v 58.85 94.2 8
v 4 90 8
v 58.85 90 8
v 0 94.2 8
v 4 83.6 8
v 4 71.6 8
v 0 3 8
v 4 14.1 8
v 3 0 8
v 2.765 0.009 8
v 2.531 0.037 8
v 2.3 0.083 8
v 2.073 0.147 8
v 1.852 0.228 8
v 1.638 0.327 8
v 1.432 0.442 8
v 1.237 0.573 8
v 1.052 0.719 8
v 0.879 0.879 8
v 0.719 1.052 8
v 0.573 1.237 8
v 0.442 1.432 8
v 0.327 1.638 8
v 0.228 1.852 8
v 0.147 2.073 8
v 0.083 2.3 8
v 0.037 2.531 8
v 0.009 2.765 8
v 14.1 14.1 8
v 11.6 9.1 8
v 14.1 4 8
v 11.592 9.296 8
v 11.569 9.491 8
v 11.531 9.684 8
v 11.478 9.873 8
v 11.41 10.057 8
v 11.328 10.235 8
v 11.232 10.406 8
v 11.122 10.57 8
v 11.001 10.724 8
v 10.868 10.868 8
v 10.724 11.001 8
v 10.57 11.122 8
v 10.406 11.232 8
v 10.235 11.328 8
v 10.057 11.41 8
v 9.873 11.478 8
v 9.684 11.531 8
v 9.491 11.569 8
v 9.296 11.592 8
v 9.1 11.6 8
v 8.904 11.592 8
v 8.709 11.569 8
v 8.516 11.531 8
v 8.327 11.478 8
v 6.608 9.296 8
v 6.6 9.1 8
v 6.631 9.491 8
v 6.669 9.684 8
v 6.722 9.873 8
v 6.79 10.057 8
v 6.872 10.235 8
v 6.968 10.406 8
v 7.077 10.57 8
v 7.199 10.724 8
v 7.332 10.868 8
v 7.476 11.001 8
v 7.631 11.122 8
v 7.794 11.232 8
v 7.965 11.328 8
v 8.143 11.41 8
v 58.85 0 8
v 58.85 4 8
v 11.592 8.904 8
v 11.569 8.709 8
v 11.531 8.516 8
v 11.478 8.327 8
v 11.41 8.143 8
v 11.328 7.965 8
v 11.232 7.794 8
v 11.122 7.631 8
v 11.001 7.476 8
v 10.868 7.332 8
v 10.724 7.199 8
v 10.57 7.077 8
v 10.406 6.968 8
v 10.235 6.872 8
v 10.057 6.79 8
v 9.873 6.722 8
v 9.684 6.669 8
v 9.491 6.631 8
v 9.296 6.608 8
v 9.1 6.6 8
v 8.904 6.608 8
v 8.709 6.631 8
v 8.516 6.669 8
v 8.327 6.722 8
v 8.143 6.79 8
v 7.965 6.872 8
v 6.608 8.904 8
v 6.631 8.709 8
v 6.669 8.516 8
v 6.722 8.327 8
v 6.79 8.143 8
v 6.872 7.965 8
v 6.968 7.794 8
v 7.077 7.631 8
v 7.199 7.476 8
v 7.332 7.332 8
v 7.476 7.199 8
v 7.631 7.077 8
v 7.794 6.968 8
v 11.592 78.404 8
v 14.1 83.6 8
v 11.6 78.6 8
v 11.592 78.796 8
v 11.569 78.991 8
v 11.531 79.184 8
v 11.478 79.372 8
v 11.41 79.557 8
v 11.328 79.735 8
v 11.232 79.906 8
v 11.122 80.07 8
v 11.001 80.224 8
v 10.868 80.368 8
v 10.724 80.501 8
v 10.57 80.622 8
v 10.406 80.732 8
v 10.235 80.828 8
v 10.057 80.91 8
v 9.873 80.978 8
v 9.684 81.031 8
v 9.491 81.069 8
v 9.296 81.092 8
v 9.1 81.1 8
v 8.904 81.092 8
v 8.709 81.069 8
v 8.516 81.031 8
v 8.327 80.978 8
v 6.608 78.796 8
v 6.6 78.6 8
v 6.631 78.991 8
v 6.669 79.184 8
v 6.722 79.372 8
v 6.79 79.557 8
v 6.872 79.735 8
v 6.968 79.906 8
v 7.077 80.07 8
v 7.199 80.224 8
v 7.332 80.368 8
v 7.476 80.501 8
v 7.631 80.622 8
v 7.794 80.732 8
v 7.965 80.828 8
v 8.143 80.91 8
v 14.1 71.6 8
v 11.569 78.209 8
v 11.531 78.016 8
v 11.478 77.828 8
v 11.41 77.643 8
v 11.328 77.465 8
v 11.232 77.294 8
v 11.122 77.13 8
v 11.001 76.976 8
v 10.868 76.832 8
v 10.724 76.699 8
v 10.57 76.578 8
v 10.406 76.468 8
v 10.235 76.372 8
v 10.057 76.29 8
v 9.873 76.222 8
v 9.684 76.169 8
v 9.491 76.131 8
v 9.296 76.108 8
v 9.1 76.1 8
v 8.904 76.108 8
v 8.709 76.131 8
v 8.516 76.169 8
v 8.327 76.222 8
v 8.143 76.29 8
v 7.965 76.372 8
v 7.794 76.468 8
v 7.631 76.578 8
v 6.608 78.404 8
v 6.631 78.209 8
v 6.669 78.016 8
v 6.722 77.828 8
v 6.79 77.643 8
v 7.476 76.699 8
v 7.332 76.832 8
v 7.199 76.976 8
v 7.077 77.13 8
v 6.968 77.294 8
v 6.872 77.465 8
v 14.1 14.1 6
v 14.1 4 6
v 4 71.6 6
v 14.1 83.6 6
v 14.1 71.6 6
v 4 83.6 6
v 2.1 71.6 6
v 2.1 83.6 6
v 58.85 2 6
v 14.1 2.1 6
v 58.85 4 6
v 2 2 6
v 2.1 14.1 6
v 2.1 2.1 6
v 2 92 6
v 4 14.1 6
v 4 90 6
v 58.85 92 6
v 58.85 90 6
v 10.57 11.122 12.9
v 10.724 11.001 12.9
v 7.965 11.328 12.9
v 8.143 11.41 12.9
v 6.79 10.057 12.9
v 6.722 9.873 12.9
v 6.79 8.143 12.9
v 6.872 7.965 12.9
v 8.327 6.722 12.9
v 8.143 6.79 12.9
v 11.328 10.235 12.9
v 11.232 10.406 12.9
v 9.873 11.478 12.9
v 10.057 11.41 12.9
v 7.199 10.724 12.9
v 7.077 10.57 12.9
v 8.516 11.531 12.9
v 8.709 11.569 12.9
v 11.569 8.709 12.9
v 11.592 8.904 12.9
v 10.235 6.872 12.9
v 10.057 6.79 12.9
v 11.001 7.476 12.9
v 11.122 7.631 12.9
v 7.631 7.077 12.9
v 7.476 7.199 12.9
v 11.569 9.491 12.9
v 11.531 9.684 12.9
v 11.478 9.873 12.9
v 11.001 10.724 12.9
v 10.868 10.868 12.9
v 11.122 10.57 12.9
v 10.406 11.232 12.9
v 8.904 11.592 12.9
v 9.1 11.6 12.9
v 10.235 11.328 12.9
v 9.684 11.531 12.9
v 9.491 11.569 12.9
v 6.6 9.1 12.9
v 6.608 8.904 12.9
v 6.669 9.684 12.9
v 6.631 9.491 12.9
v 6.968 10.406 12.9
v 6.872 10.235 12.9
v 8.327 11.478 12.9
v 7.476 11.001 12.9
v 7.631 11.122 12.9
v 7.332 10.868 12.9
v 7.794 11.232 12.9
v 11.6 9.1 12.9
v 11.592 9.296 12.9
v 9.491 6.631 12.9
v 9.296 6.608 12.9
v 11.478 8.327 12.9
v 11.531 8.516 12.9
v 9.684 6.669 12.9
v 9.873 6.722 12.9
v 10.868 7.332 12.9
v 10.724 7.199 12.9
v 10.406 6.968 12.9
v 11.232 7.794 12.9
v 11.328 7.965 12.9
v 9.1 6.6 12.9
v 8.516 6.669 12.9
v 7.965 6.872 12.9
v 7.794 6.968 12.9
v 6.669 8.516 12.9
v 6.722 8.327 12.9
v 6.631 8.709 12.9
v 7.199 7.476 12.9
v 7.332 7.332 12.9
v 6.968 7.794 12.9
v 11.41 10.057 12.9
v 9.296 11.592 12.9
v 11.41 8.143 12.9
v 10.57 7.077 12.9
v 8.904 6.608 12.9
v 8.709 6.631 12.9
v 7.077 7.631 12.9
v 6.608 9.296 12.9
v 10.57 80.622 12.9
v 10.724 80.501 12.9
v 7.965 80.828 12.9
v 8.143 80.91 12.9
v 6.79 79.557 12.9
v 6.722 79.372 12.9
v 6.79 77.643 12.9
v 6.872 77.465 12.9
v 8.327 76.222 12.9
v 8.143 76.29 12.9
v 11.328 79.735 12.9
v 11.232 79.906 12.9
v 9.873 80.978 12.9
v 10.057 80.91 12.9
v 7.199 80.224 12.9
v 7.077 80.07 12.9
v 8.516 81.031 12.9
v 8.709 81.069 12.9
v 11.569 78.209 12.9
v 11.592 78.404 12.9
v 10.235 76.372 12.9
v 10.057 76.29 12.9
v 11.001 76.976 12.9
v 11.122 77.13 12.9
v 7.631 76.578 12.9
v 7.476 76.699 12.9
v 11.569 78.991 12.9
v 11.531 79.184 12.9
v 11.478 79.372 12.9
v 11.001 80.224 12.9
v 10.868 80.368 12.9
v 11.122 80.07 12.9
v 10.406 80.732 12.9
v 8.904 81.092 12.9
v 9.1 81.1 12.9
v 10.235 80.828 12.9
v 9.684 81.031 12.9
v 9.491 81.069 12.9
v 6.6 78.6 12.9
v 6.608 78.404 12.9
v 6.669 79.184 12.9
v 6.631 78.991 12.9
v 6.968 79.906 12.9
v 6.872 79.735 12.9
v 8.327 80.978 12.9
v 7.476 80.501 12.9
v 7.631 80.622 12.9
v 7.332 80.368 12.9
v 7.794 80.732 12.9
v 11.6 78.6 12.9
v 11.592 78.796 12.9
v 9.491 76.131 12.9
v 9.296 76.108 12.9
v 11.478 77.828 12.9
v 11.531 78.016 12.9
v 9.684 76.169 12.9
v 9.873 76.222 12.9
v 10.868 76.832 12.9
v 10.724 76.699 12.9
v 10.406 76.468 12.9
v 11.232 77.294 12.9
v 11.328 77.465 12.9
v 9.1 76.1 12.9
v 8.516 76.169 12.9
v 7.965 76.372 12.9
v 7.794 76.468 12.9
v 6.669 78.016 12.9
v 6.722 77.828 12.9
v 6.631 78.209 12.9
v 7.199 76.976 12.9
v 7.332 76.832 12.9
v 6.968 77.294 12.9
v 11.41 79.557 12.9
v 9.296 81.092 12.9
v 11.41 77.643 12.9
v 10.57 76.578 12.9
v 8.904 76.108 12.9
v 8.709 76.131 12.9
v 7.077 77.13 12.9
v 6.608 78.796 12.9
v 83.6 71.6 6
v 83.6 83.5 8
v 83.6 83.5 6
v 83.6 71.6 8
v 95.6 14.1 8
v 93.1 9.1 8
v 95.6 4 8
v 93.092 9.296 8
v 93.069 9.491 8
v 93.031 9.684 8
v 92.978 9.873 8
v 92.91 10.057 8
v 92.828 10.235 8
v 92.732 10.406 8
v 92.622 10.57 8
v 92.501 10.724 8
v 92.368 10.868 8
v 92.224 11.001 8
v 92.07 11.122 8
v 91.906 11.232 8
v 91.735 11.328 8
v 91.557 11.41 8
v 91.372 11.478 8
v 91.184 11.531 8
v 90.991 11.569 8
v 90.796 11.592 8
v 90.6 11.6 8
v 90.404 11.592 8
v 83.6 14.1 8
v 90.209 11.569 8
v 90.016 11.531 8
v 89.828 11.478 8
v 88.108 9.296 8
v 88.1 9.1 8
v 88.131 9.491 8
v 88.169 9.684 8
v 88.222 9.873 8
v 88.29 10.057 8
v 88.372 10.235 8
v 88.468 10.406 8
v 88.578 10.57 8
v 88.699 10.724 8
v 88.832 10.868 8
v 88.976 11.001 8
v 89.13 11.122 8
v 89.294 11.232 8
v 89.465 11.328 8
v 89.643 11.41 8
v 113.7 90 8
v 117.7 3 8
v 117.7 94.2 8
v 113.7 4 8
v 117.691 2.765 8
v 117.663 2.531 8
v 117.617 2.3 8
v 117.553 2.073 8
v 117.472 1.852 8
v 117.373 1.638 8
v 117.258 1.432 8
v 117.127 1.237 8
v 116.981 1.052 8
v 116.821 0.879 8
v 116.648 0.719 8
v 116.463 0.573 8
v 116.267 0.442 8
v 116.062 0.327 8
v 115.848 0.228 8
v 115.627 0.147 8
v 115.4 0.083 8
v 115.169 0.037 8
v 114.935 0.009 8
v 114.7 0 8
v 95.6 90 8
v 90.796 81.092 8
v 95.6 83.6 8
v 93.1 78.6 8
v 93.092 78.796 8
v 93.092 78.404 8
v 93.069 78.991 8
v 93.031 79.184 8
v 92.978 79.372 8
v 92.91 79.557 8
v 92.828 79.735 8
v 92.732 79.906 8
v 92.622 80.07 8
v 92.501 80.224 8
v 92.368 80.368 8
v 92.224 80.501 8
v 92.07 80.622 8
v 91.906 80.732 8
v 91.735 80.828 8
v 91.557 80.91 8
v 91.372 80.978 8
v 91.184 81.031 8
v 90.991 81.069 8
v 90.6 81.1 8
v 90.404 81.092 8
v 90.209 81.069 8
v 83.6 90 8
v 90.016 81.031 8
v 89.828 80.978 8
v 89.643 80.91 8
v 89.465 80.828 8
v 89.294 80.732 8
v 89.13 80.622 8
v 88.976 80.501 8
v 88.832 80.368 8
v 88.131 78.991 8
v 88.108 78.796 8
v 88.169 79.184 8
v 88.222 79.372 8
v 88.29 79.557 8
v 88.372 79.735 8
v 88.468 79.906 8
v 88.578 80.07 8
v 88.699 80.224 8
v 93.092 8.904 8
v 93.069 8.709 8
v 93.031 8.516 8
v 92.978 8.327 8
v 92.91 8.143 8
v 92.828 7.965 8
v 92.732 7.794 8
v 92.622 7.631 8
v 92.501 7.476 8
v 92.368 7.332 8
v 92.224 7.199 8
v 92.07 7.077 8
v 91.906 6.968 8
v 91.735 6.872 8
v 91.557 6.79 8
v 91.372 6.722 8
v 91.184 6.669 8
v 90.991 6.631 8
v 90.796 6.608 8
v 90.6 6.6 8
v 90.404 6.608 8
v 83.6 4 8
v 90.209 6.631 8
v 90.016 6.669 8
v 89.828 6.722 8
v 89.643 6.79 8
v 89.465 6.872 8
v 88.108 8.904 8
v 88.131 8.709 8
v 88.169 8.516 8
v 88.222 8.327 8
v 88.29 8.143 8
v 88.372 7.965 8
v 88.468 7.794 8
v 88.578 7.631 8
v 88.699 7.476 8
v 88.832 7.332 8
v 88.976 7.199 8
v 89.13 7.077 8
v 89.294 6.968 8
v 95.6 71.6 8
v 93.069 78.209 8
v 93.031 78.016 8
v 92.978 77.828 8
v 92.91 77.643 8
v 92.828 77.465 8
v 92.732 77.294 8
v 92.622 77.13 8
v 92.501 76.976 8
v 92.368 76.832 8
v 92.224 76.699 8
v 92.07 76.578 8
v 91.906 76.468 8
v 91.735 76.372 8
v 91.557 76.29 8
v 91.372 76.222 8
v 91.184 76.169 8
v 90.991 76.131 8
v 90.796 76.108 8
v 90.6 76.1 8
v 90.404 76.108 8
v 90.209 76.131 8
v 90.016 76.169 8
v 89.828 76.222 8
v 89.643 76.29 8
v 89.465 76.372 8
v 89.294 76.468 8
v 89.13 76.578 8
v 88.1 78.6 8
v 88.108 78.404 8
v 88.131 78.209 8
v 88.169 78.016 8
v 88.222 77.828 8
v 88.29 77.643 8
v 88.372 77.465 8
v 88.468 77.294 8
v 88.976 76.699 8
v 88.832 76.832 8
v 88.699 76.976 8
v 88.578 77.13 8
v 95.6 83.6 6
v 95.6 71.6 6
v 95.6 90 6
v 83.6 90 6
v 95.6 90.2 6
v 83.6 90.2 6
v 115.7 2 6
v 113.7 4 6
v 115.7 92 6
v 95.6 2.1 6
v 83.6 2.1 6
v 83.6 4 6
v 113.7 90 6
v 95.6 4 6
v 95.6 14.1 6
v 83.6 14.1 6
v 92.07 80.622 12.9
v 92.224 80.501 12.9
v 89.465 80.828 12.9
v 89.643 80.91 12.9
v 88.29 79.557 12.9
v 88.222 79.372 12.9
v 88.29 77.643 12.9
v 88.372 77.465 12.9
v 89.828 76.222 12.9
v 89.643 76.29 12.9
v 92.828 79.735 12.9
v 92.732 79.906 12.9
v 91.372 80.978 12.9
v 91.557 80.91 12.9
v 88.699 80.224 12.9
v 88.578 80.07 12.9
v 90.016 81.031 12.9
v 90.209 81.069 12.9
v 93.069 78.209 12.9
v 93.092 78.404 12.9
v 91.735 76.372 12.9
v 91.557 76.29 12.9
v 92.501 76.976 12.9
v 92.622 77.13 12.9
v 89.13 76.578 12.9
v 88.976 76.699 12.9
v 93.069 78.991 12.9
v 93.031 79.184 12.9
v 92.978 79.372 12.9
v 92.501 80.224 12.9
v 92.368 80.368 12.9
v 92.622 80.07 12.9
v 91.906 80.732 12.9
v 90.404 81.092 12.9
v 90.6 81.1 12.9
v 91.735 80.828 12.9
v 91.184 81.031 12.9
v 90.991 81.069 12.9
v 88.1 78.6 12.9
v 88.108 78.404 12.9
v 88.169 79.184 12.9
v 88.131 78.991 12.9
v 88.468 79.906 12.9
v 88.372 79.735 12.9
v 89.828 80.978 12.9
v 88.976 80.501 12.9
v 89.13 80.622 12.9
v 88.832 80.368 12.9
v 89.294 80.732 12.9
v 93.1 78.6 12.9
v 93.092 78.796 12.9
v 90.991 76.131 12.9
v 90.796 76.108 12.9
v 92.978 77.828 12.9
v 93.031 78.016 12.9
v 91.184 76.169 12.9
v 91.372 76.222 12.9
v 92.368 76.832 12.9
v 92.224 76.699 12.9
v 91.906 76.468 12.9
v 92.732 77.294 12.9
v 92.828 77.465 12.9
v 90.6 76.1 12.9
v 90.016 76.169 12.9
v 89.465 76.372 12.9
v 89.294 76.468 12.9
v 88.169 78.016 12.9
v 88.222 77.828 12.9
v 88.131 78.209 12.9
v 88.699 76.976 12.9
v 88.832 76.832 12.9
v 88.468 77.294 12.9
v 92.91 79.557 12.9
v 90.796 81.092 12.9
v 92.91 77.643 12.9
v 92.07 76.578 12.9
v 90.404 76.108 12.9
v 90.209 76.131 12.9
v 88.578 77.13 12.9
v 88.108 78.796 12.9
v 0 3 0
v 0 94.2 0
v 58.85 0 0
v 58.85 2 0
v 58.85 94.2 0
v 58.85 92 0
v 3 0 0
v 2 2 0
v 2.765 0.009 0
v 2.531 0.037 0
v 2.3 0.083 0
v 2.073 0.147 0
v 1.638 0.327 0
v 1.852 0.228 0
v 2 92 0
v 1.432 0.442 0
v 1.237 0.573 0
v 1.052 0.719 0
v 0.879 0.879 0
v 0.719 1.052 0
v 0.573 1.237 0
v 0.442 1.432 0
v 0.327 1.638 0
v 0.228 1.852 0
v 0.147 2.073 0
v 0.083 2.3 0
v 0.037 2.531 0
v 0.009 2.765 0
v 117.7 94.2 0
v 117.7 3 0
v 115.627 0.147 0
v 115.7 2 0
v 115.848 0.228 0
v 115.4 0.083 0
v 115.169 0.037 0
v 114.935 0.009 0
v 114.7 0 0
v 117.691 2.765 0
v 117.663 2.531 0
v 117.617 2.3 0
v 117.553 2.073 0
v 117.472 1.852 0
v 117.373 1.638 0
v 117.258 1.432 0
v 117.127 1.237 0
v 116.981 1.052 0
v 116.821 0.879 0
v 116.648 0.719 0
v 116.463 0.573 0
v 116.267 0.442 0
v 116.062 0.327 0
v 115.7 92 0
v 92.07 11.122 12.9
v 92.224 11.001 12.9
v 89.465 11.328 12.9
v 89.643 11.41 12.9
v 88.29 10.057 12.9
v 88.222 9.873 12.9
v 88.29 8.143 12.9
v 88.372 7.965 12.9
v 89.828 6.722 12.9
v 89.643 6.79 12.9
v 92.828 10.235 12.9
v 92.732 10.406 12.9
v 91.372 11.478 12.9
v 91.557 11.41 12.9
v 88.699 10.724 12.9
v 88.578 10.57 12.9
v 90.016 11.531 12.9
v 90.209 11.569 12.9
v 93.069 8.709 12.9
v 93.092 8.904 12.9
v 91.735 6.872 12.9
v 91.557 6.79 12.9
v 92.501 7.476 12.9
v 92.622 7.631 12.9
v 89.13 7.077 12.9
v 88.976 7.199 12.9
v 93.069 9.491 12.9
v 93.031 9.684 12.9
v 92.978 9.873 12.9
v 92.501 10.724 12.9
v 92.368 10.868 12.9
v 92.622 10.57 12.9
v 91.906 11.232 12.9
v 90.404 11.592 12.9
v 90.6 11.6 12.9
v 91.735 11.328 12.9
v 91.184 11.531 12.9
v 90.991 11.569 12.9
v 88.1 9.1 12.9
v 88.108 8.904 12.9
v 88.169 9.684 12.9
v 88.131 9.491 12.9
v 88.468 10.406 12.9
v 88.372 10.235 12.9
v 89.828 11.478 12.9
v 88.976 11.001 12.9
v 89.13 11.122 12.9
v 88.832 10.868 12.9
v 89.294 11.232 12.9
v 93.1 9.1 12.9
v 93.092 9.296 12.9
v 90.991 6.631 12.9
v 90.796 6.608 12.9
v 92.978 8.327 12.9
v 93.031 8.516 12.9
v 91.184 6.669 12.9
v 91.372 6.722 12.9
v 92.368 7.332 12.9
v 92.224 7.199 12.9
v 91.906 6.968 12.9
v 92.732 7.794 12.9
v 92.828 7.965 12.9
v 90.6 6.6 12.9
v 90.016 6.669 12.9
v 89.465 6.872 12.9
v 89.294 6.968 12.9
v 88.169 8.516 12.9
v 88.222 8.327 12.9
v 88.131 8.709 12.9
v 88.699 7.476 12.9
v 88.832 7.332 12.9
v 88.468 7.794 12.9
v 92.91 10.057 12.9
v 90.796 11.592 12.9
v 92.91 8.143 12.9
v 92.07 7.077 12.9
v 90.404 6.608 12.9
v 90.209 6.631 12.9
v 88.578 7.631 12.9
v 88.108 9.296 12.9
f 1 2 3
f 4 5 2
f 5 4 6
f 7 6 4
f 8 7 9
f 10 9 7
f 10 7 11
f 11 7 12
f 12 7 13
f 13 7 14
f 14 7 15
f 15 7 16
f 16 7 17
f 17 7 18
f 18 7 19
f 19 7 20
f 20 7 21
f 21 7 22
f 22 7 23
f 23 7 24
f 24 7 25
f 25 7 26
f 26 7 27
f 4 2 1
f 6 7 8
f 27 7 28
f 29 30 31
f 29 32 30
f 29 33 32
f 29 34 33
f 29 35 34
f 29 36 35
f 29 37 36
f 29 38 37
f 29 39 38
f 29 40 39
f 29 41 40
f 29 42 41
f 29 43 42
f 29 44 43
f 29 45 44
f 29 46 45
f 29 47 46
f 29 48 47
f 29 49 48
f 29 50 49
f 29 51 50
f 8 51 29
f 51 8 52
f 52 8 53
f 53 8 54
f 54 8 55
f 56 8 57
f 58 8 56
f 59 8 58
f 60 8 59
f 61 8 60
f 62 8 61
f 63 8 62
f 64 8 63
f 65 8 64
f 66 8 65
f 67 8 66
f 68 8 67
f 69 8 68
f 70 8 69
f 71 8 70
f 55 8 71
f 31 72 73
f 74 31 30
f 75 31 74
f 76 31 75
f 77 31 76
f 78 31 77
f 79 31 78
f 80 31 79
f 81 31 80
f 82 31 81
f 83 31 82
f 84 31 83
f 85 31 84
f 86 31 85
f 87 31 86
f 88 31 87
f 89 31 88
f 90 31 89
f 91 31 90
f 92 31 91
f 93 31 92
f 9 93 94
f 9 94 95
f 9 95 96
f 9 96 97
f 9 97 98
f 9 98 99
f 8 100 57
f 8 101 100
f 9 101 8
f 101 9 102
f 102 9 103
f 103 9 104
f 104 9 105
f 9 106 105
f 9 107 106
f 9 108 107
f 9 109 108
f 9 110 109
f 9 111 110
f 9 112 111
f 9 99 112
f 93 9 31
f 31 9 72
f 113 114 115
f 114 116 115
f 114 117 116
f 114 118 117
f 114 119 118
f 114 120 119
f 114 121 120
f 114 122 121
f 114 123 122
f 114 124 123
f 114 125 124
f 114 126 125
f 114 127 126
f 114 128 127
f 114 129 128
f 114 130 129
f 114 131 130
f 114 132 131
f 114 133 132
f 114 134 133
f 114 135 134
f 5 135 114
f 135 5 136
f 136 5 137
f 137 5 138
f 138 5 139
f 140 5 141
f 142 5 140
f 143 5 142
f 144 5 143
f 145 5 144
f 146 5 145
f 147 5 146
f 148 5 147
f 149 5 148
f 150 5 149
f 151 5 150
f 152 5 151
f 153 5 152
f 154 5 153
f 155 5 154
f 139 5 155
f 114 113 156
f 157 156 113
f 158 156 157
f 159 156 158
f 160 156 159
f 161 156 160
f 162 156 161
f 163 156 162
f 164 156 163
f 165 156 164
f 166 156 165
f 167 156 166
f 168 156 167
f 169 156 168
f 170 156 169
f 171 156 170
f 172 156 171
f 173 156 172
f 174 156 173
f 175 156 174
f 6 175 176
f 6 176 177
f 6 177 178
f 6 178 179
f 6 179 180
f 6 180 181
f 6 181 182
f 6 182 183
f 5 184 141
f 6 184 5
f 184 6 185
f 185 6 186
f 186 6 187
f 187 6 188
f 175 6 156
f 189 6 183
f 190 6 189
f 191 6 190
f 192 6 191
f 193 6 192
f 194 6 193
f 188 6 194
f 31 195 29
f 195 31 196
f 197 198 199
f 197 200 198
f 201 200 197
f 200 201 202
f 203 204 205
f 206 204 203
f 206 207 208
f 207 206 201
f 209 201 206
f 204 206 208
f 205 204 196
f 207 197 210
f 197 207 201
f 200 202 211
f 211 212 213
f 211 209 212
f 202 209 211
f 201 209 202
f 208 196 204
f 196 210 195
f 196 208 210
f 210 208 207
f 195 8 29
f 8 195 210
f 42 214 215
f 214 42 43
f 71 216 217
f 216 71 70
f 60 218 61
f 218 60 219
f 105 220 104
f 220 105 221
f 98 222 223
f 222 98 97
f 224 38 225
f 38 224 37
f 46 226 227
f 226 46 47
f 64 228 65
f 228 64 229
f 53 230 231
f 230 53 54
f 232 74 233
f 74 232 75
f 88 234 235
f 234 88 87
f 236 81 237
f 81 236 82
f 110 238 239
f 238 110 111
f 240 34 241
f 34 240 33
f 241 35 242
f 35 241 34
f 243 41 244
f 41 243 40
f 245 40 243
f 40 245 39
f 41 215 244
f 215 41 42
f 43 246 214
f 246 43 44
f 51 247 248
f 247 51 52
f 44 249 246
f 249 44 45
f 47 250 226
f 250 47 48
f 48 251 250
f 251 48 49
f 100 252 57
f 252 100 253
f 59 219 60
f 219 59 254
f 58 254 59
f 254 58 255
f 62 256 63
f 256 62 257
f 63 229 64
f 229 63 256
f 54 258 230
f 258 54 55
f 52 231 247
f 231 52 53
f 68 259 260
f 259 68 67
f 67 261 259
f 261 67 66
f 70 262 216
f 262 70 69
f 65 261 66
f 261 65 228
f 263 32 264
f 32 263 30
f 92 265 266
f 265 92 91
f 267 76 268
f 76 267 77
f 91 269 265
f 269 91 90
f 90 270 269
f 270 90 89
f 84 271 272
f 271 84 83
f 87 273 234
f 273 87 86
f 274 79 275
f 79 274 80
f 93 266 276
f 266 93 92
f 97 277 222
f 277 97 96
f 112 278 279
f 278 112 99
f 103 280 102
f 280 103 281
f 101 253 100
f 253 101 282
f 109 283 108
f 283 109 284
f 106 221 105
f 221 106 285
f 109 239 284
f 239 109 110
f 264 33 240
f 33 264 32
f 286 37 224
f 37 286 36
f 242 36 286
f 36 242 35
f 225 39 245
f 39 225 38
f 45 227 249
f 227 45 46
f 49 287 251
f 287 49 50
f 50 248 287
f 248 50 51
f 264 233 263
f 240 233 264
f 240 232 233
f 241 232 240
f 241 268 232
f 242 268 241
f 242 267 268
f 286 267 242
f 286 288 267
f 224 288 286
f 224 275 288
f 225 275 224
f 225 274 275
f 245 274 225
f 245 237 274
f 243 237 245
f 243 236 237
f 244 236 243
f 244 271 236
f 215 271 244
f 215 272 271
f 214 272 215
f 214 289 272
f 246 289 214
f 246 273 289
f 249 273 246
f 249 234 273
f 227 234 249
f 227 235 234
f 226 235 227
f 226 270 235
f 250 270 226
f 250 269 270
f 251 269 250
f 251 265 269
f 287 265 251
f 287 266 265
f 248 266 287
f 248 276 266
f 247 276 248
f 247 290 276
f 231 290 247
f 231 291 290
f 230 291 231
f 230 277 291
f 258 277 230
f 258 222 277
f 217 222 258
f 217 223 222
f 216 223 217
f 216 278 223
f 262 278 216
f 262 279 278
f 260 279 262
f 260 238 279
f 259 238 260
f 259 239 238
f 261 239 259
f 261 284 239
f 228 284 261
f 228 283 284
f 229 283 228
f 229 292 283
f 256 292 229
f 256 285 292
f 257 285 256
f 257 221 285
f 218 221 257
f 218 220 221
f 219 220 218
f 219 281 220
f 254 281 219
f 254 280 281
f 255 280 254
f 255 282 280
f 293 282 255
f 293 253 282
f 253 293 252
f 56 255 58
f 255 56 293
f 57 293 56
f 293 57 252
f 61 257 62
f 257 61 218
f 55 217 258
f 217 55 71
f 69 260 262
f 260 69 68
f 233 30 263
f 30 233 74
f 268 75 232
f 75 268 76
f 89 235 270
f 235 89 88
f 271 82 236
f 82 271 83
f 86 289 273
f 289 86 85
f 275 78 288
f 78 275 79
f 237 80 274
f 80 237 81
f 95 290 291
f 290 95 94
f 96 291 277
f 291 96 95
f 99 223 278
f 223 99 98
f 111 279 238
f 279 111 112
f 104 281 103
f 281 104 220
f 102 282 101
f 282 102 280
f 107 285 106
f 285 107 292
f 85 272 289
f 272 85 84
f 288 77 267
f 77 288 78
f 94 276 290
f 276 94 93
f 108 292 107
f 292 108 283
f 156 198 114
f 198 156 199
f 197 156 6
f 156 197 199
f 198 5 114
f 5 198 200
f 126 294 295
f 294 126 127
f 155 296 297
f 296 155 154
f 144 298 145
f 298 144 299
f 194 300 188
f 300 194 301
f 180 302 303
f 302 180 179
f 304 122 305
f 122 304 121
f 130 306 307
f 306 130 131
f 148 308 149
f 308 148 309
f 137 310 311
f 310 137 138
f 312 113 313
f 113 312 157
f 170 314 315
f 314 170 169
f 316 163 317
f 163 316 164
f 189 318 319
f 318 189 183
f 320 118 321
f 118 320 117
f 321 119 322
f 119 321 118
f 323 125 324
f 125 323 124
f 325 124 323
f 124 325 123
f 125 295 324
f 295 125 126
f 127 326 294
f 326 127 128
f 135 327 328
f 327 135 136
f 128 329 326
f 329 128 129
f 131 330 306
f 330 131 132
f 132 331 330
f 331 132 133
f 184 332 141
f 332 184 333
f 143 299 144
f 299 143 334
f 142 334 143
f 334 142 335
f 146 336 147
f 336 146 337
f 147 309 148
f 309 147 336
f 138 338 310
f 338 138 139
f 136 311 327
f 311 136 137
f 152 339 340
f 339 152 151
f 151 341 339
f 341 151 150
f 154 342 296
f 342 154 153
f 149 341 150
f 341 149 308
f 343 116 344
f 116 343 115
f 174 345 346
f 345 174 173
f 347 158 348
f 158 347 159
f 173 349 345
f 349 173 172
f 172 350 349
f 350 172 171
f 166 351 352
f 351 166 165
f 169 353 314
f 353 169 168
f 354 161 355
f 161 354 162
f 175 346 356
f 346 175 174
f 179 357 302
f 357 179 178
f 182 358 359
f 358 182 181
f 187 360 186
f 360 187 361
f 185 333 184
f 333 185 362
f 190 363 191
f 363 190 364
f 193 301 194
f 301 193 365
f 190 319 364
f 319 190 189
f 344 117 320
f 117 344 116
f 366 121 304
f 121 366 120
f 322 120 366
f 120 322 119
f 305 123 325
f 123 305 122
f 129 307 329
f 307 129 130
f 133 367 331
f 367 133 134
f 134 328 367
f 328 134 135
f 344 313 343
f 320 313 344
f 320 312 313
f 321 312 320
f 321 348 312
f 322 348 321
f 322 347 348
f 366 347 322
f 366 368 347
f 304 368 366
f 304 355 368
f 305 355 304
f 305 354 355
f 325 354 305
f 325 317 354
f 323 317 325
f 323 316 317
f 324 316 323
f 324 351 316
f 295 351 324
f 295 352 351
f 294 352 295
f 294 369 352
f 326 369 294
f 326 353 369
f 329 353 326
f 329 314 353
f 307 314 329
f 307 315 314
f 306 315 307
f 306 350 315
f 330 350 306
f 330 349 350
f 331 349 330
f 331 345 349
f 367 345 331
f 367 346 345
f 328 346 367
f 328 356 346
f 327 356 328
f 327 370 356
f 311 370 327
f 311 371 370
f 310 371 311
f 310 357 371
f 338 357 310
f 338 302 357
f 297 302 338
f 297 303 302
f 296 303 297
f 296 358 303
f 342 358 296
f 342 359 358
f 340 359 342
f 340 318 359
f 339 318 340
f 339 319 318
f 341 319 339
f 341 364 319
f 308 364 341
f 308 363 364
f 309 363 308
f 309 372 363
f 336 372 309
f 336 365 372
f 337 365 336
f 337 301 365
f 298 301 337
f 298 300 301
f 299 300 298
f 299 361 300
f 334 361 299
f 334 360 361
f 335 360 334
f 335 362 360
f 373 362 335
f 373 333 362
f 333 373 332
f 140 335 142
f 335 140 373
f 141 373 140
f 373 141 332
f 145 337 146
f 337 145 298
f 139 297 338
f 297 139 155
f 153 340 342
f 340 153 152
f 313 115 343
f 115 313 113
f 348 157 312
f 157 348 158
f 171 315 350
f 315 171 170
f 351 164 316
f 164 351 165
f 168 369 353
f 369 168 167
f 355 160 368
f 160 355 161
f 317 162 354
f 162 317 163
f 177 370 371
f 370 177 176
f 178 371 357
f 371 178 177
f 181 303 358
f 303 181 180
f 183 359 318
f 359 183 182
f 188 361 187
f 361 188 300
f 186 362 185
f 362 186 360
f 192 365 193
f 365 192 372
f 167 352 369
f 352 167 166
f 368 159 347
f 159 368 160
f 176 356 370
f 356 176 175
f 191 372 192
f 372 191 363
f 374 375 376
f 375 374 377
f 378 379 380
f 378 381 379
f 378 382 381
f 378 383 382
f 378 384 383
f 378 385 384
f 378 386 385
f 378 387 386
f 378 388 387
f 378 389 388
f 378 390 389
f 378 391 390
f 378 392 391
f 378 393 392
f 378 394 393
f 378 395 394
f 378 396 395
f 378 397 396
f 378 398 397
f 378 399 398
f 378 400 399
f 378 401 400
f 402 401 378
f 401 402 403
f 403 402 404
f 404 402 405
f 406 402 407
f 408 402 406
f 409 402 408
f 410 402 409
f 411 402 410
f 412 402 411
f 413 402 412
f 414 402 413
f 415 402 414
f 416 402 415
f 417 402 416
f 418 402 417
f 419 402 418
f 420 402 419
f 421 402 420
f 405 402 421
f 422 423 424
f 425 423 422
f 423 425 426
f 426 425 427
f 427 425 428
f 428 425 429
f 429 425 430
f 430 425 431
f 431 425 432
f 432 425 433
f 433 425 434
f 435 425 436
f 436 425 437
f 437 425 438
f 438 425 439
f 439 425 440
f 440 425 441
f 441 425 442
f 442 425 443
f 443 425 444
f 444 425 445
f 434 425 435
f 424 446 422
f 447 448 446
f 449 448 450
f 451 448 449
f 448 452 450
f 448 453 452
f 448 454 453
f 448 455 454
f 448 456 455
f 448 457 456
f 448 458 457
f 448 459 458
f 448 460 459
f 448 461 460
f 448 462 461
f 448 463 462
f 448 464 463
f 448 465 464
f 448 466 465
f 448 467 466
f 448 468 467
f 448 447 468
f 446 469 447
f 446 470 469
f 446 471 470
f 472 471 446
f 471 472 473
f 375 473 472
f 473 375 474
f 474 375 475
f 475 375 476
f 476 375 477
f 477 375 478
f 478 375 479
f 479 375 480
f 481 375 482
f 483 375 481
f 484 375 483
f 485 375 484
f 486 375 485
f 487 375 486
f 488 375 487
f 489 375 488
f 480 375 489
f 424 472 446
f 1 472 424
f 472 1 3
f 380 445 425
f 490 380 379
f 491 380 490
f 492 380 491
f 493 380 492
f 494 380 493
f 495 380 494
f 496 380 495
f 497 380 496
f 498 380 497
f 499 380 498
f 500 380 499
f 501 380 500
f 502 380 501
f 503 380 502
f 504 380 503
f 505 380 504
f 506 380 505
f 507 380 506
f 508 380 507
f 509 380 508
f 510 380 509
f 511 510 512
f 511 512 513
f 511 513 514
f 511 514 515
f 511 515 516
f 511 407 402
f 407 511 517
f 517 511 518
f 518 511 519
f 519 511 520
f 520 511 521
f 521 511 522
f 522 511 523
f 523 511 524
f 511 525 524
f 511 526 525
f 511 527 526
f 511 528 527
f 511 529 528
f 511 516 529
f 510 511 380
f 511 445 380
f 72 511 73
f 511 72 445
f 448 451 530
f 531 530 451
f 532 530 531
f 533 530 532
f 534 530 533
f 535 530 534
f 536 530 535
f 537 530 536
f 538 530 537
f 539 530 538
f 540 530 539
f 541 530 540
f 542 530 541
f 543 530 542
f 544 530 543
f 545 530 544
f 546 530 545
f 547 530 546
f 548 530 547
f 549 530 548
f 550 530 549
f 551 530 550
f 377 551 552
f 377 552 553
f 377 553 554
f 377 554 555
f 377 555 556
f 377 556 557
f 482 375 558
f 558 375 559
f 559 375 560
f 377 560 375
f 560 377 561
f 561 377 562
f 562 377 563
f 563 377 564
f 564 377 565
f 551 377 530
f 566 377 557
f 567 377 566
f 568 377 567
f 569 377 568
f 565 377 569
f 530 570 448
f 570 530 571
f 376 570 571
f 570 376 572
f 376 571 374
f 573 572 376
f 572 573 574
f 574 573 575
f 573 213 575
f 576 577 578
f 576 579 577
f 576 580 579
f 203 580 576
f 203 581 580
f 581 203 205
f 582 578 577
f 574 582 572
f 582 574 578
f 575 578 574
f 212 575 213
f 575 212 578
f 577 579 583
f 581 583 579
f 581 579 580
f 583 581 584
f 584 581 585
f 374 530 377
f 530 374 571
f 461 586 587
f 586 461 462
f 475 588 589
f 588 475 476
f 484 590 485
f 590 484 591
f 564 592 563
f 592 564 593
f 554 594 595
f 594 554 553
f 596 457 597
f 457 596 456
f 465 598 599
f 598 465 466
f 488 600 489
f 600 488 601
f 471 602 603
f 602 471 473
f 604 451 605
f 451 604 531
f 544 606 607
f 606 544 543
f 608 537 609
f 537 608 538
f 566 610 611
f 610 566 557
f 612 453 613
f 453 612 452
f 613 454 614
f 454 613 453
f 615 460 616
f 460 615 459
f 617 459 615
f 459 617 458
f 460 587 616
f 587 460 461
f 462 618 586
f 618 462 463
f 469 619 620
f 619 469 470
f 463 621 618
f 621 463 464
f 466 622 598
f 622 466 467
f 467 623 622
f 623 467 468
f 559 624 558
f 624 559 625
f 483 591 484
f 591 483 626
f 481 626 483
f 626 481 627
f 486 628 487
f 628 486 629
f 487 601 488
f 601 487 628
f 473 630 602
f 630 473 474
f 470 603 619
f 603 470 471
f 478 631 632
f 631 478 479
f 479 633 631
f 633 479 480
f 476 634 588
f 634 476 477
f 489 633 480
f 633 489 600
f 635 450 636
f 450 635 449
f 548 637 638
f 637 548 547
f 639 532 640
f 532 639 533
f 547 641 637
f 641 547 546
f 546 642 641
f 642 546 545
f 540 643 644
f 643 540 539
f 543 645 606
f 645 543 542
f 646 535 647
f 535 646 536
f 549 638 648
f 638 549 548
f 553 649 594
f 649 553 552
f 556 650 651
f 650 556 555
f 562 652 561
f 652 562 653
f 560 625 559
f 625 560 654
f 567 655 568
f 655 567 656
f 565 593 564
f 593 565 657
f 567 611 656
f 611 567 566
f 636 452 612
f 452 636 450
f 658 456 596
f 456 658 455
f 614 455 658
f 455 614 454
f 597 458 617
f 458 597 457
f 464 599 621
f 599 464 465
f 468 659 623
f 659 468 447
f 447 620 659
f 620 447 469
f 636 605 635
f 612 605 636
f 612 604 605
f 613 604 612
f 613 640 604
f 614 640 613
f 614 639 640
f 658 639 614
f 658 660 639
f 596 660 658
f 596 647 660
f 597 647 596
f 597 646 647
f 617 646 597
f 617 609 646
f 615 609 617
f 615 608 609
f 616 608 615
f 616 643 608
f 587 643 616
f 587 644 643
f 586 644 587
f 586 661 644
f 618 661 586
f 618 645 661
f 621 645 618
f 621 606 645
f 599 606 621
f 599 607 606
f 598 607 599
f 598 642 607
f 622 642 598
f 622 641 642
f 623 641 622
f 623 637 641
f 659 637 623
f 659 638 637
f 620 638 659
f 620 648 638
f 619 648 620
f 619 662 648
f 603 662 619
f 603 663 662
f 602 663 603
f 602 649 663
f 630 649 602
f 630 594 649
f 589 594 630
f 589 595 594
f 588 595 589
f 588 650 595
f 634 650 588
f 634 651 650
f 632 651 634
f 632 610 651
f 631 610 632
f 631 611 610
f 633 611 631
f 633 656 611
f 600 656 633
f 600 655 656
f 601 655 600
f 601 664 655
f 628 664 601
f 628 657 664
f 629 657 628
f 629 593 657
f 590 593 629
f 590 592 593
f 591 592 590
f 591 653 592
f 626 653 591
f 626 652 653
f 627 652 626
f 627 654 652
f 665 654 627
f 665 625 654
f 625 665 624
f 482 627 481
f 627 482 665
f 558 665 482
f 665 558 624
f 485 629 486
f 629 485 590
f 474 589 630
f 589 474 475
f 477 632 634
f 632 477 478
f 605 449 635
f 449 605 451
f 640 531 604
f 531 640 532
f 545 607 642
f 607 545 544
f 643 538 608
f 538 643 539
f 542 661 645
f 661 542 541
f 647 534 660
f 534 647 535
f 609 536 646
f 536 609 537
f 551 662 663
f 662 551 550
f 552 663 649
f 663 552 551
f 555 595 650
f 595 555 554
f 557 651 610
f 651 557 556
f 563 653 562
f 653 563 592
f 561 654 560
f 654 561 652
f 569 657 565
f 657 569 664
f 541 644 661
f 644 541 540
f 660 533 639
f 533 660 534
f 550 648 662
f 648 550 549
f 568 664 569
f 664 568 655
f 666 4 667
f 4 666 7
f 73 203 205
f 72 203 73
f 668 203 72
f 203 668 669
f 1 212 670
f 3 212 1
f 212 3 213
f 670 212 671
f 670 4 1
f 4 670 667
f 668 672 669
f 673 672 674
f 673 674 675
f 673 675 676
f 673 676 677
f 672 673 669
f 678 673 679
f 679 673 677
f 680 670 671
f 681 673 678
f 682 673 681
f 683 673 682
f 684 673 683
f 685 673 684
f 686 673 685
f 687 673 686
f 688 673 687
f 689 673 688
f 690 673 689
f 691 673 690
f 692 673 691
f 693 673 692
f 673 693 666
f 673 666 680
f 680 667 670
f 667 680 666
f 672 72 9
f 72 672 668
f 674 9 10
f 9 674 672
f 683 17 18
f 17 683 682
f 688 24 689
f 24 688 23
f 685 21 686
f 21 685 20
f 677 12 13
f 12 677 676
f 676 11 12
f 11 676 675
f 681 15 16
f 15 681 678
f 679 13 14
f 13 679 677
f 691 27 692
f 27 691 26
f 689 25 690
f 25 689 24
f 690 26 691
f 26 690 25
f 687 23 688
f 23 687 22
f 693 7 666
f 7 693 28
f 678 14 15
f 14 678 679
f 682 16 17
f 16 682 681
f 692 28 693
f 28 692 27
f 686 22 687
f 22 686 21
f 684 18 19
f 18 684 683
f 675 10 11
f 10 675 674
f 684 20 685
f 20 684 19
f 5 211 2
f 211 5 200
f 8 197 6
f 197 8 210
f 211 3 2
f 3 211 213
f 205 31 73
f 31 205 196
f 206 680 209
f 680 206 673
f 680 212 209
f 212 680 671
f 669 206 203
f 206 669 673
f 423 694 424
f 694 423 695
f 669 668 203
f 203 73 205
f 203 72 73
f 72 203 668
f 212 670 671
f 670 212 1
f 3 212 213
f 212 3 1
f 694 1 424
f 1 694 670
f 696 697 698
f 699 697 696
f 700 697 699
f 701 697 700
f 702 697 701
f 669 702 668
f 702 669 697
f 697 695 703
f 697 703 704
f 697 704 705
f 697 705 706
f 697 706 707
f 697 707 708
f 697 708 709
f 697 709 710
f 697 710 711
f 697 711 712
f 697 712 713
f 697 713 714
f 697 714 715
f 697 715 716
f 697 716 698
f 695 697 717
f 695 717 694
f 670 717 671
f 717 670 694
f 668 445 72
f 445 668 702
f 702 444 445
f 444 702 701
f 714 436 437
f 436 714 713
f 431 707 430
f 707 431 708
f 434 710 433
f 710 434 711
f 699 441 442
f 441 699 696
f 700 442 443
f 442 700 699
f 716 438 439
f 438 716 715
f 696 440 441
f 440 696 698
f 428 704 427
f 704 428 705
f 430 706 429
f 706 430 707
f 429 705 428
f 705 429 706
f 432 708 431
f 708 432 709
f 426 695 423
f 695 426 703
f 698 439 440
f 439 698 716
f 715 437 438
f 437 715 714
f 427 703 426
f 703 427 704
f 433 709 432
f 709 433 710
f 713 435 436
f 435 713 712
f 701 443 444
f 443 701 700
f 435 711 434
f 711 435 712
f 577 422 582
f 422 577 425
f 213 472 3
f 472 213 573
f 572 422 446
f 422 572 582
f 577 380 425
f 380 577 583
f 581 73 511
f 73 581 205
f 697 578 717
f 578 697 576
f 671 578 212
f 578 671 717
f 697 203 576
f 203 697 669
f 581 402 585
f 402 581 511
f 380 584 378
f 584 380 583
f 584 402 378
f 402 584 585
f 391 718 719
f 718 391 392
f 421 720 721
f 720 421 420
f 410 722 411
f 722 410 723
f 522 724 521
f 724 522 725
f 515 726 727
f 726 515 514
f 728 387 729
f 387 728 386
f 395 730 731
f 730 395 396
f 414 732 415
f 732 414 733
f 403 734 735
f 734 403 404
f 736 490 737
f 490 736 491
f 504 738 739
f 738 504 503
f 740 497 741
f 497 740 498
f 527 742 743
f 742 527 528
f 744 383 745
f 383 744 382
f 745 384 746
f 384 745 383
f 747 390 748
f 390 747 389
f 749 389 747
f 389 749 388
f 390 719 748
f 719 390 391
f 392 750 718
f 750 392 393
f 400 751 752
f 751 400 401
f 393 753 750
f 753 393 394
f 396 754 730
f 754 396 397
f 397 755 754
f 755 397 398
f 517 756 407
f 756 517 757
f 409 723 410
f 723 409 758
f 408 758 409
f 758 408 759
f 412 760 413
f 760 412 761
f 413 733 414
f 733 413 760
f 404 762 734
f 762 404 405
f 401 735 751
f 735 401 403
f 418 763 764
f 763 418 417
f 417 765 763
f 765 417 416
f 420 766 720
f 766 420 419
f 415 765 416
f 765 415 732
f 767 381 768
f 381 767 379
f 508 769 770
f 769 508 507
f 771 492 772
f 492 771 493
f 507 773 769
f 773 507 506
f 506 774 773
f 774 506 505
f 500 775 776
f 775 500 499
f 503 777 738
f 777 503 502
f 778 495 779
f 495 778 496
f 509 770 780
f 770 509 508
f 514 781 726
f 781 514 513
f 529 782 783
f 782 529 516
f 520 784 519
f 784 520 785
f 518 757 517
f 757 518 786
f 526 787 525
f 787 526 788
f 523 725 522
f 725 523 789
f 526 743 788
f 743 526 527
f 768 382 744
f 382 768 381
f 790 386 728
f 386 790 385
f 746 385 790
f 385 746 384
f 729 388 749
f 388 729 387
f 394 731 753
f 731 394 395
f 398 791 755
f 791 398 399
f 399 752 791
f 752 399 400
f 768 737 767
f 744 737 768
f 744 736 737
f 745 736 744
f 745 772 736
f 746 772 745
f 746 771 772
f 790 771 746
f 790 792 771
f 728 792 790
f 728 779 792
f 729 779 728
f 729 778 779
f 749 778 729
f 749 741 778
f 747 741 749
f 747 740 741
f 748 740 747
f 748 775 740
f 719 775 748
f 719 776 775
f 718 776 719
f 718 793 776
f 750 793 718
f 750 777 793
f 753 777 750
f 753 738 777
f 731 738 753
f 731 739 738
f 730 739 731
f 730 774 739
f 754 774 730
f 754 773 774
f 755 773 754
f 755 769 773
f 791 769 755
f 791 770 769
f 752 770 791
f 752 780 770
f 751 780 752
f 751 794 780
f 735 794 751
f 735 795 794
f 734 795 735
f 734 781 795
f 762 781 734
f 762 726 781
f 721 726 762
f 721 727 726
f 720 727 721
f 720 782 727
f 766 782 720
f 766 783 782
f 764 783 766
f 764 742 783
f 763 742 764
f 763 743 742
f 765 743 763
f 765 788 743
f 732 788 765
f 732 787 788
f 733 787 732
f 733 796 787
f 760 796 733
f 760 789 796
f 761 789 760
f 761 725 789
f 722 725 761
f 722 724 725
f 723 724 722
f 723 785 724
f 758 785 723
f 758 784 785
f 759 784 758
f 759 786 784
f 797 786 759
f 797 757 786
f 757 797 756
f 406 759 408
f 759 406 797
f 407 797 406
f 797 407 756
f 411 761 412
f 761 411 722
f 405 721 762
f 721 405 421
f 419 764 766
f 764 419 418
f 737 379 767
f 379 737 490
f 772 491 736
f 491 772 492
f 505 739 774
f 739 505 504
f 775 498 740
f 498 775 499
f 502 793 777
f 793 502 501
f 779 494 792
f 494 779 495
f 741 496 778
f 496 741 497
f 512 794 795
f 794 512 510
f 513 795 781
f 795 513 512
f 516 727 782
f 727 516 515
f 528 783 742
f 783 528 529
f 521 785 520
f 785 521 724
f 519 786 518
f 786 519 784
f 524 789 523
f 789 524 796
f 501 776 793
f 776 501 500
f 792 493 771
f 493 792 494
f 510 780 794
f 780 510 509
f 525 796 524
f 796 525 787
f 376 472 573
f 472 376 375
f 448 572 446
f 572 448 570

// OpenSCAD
// file: common.scad
small_height = 23;
large_height = 12;

outer_large_x = 91.5;
outer_large_y = 79.5;

d_small = 5;
d_large = 10;
delta = .1;

between_pins_x = outer_large_x - d_large;
between_pins_y = outer_large_y - d_large;

hole_z = 5;
hole_full_d = d_small+3*delta;

h = 2;

fn = 80;

module pin() {
    union() {
        difference() {
            cylinder(d=d_large, h=large_height, $fn=fn);
            pin_hole();
        }
        translate([0, 0, large_height]) small_pin(small_height);
    }
}

module small_pin(z) {
    cylinder(d=d_small, h=z, $fn=fn);
}

module pin_hole() {
    cylinder(d=hole_full_d, h=hole_z, $fn=fn);
}
// main file
include <common.scad>;

mikrotik_y = 90;
mikrotik_x = 113.5;
mikrotik_full_x = mikrotik_x+2*delta;
mikrotik_full_y = mikrotik_y+2*delta;
mikrotik_h = 2;
mikrotik_vent_h = 2;

round_border_r = 3;

plate_x = mikrotik_full_x + 2*h;
plate_y = mikrotik_full_y + 2*h;
border_z = 6;
total_z = h + border_z;

charger_x=26;
charger_y=90;

module main_plate_half(x, y, z) {
    difference() {
        union() {
            translate([0, round_border_r, 0]) cube([x, y-round_border_r, z], false);
            translate([round_border_r, 0, 0]) cube([x-round_border_r, round_border_r, z], false);
            translate([round_border_r, round_border_r, 0]) cylinder(h=z, r=round_border_r, $fn=fn);
        }
        translate([2 * h, 2 * h, border_z]) cube([mikrotik_x / 2 - h + delta, mikrotik_y - 2 * h, h]);
        translate([h, h, 0]) cube([mikrotik_x / 2 + delta, mikrotik_y, border_z]);
    }
}
module main_plate() {
    union() {
        main_plate_half(plate_x / 2, plate_y, total_z);
        translate([plate_x, 0, 0]) mirror([1, 0, 0]) main_plate_half(plate_x / 2, plate_y, total_z);
    }
}

module base() {
    difference() {
        main_plate();
    }
}

module bottom_left_pin() {
    translate([d_large/2+h, d_large/2 + mikrotik_vent_h, h])
        small_pin(hole_z-delta);
}

module bottom_left_pin_with_holder() {
    translate([h+delta, h+delta, border_z]) union() 
    {
        cube([d_large+h, d_large+mikrotik_vent_h, h]);
        bottom_left_pin();
    }
}

module full() {
    base();
    union() {
        bottom_left_pin_with_holder();
        translate([0, between_pins_y, 0]) bottom_left_pin_with_holder();
        translate([between_pins_x, between_pins_y, 0]) bottom_left_pin_with_holder();
        gap = plate_y - 2*h - d_large+mikrotik_vent_h - (between_pins_x - (d_large+mikrotik_vent_h)/2);
        translate([between_pins_x, 0, 0]) union() {
            bottom_left_pin_with_holder();
            translate([h+delta, plate_y - 2*h - gap, border_z]) cube([d_large+h, gap, h]);
        }
    }
}

full();
